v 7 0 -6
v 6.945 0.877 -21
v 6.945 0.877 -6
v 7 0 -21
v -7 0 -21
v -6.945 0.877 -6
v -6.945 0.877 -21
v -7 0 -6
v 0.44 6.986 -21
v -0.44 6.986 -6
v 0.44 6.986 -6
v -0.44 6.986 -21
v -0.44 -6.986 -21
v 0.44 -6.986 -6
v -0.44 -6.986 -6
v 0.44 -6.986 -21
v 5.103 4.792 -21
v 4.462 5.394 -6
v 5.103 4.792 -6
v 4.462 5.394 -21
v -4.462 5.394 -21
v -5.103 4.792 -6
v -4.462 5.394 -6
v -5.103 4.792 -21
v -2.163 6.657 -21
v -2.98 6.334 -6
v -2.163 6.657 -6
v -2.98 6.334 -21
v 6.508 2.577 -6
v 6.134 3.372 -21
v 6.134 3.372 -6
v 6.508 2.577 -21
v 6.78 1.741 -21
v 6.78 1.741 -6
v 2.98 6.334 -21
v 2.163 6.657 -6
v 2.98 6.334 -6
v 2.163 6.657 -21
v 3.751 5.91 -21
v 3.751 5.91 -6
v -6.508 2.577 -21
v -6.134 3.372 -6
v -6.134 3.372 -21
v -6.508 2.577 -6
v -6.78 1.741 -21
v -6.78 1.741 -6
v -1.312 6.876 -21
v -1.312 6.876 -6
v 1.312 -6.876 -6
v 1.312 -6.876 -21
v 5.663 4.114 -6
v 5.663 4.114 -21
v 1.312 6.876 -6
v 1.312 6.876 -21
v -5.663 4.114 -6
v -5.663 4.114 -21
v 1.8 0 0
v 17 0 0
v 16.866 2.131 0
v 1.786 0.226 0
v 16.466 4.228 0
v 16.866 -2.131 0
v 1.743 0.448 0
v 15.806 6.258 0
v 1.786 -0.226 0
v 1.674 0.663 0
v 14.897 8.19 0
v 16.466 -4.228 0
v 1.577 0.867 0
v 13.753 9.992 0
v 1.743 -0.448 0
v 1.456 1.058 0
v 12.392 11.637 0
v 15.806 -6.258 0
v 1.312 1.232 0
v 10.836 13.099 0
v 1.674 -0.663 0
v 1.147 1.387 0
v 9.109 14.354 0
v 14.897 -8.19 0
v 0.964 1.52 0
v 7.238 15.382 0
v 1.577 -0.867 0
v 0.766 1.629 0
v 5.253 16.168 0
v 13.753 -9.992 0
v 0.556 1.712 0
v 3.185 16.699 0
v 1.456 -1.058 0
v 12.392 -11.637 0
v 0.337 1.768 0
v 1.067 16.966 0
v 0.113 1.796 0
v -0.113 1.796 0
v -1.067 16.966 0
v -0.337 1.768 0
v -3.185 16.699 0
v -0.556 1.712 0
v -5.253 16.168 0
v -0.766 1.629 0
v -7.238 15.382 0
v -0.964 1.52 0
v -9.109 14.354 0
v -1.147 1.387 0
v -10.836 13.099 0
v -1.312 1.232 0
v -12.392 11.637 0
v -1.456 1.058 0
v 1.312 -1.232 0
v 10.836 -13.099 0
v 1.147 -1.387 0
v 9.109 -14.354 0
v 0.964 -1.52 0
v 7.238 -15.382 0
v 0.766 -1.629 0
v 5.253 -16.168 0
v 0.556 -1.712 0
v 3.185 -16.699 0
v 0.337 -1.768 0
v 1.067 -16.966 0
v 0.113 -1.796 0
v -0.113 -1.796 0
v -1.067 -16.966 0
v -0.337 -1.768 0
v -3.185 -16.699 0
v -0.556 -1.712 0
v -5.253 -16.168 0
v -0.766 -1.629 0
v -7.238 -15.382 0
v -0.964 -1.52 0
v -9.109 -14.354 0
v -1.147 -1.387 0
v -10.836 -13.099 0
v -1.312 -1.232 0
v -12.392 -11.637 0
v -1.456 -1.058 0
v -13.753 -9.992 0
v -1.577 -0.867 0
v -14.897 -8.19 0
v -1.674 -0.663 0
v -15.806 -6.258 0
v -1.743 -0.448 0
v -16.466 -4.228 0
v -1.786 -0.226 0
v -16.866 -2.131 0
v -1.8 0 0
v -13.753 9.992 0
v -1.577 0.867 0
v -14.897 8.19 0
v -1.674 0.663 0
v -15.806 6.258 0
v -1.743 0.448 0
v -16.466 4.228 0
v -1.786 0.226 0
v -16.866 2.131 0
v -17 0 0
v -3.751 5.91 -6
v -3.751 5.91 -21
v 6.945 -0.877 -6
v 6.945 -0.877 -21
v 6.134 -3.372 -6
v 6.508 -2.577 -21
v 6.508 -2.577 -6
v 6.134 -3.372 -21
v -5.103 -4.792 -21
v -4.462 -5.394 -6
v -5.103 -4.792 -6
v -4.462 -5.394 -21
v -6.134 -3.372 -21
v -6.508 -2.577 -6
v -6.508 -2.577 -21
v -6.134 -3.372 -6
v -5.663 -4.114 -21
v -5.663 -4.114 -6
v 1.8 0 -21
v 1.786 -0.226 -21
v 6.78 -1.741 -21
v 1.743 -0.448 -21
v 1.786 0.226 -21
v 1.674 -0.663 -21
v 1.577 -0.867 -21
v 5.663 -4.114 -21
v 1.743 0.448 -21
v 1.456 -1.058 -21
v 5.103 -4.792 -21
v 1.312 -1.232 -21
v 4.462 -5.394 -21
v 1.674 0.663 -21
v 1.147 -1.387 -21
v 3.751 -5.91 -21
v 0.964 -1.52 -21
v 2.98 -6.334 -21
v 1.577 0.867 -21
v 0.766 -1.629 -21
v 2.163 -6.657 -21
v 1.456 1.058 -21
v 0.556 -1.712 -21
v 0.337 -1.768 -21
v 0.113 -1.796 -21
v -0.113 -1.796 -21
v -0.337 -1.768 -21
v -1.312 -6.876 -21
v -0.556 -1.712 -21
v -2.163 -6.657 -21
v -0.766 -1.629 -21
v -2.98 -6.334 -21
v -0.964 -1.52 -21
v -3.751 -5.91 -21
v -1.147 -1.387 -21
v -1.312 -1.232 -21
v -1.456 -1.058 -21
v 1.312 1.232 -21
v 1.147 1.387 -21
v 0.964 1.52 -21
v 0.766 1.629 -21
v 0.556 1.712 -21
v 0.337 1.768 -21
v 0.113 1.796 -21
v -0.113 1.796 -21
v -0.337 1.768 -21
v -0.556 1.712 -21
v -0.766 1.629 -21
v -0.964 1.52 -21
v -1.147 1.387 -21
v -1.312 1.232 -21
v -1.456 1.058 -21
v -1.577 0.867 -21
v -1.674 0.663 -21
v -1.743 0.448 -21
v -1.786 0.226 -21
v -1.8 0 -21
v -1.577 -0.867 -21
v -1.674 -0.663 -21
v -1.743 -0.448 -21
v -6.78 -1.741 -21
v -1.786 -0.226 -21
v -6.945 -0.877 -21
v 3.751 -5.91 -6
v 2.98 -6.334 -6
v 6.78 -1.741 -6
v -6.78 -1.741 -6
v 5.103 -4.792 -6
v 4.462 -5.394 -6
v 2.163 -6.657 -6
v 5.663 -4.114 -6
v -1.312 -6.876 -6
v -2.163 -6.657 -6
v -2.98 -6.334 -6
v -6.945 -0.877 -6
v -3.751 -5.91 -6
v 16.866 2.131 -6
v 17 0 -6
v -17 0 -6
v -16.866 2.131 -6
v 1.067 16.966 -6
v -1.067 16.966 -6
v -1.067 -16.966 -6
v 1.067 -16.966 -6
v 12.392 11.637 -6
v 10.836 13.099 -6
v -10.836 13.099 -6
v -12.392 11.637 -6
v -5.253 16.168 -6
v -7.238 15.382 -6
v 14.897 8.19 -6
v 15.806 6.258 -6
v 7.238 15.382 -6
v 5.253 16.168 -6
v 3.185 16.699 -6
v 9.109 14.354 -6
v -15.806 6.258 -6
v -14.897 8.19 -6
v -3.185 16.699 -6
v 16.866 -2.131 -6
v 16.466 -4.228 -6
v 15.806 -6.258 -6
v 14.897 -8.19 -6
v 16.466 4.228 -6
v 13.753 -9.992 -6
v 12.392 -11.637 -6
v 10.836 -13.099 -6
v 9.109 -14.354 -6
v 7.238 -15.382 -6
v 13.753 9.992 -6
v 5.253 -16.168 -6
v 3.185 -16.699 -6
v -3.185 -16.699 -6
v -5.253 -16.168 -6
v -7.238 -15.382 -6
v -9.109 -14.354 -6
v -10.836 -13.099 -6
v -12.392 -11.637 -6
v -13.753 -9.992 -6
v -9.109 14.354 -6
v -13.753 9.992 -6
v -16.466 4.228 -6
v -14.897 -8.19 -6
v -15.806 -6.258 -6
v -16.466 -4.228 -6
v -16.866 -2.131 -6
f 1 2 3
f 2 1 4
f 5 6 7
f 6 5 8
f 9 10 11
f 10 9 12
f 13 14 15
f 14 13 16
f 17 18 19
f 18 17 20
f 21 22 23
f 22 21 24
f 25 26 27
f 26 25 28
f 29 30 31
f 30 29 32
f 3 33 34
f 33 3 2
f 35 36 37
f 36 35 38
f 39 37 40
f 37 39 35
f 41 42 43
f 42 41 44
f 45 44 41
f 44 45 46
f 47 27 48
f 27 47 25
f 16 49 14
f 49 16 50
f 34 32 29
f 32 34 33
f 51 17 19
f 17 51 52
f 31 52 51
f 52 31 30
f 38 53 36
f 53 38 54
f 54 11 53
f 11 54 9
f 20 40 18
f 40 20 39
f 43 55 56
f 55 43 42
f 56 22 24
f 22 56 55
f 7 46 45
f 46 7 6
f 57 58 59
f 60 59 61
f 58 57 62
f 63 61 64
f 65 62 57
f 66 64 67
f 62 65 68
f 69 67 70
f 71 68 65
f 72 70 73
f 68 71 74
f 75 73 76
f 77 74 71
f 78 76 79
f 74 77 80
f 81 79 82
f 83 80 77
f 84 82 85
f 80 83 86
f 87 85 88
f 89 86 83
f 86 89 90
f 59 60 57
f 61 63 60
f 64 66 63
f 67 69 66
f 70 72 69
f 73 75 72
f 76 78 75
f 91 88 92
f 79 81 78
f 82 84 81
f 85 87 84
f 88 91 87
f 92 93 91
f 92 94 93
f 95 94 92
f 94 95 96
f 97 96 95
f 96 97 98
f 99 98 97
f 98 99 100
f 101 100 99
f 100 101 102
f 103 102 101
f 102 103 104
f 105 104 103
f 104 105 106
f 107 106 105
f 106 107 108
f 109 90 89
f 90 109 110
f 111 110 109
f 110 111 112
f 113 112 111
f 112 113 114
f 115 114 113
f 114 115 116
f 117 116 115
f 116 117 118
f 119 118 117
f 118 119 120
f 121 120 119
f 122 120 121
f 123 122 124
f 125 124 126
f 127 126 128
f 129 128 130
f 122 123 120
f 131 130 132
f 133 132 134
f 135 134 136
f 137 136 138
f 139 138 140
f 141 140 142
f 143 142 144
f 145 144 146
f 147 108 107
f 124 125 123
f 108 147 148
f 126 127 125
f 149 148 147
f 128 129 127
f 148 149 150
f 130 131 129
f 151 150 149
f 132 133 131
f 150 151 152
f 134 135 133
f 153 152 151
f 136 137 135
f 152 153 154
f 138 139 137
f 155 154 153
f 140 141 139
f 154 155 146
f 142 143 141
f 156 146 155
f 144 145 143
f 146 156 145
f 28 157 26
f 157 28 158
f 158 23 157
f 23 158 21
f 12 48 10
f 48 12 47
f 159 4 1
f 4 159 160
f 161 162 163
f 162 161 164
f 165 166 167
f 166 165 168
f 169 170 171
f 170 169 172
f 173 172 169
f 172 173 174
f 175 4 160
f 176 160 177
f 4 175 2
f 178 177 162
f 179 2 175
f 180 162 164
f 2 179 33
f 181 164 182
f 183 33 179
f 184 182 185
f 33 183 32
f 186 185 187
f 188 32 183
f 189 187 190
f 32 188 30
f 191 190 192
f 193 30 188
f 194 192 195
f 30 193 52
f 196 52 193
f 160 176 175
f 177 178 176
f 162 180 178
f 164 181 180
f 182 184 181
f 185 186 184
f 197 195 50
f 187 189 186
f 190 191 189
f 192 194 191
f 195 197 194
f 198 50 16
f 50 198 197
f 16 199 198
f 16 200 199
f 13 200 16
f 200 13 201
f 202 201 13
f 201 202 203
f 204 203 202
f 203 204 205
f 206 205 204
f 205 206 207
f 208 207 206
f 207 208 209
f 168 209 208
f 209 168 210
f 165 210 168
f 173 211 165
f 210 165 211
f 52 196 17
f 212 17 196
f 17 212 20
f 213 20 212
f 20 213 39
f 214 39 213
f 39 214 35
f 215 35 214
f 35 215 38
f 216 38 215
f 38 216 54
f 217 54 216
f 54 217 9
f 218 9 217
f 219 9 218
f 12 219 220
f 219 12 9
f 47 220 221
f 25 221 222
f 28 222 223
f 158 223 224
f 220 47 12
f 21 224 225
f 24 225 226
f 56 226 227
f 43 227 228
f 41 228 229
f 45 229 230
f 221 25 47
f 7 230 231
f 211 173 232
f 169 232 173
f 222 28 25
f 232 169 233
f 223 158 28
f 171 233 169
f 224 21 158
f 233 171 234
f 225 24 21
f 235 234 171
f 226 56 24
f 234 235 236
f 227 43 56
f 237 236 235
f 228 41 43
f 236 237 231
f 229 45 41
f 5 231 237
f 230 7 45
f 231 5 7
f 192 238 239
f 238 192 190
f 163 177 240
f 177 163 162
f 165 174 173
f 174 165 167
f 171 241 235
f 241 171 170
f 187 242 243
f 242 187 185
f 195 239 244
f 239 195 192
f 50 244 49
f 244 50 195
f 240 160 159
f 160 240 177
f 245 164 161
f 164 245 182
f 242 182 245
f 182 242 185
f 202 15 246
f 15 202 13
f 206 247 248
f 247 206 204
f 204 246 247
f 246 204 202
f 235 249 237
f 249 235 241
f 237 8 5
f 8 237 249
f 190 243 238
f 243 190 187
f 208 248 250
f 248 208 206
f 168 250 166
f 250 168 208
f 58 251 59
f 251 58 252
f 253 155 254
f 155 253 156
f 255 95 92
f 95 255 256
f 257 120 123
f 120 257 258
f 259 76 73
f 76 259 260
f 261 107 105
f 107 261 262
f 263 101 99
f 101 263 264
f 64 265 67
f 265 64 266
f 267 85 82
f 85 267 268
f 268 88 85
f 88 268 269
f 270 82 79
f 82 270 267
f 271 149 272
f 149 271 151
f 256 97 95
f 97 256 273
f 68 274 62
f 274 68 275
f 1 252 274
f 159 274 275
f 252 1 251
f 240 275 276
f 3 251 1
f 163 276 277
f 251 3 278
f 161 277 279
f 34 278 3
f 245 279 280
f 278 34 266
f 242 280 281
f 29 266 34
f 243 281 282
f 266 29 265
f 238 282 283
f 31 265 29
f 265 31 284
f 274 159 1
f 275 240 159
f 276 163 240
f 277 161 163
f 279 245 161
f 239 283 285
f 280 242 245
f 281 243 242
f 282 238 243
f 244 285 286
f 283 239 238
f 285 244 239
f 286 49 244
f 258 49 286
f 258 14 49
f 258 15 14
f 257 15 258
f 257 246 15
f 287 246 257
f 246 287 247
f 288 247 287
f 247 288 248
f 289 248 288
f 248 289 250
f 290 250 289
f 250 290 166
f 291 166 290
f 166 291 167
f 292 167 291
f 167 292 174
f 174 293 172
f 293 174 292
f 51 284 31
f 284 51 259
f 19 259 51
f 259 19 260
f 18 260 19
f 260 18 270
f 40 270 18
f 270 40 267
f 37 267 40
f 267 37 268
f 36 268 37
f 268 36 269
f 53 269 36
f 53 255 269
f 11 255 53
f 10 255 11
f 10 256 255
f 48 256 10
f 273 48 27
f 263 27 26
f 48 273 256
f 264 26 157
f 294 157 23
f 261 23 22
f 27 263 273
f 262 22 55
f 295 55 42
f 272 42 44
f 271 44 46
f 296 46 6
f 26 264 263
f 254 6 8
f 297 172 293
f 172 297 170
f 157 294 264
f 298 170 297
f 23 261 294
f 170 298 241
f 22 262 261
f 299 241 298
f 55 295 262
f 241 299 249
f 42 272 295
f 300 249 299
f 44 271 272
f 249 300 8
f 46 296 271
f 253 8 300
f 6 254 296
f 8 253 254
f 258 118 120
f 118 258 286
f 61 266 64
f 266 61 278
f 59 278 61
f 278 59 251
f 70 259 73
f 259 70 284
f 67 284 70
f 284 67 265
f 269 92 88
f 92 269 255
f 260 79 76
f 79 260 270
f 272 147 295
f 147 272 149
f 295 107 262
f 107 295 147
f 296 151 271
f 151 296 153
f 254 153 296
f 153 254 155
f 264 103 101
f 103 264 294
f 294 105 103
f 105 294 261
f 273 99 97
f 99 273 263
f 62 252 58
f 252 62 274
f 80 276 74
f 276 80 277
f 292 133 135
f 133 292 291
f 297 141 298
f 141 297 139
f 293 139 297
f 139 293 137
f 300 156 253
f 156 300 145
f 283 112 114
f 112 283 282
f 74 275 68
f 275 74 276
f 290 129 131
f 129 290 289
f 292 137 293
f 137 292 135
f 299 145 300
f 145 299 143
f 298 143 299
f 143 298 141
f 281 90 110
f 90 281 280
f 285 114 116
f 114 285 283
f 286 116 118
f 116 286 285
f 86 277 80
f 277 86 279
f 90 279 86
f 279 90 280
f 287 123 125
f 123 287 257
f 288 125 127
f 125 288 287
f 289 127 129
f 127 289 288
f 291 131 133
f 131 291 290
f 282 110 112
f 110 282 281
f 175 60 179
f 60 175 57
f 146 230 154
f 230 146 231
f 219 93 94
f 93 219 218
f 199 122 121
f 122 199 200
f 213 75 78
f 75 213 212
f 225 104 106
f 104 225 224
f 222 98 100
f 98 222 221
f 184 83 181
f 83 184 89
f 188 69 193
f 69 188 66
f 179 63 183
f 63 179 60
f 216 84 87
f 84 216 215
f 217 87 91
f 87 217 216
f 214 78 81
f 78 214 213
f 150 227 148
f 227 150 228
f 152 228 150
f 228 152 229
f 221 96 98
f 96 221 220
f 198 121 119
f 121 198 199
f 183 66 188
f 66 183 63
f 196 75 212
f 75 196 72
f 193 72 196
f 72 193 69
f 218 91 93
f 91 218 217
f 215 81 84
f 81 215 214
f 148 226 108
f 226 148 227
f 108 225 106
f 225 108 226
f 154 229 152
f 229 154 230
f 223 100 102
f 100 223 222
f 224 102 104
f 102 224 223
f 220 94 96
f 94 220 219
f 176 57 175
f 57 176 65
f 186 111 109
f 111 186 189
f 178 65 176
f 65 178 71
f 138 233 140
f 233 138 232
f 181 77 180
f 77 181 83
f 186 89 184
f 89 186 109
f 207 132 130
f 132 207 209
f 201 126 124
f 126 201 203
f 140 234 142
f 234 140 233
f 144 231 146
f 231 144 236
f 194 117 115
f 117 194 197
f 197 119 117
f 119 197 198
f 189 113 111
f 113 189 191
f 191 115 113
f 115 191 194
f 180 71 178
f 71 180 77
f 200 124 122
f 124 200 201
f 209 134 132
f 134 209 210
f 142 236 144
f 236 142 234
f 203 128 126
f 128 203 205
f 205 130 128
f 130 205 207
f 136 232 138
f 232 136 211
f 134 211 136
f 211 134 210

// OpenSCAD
$fn = 50;


difference() {
	union() {
		translate(v = [0, 0, -21.0000000000]) {
			cylinder(h = 21, r = 7.0000000000);
		}
		translate(v = [0, 0, -6.0000000000]) {
			cylinder(h = 6, r = 17.0000000000);
		}
	}
	union() {
		#translate(v = [0, 0, -21]) {
			cylinder(h = 21, r = 1.8000000000);
		}
	}
}
